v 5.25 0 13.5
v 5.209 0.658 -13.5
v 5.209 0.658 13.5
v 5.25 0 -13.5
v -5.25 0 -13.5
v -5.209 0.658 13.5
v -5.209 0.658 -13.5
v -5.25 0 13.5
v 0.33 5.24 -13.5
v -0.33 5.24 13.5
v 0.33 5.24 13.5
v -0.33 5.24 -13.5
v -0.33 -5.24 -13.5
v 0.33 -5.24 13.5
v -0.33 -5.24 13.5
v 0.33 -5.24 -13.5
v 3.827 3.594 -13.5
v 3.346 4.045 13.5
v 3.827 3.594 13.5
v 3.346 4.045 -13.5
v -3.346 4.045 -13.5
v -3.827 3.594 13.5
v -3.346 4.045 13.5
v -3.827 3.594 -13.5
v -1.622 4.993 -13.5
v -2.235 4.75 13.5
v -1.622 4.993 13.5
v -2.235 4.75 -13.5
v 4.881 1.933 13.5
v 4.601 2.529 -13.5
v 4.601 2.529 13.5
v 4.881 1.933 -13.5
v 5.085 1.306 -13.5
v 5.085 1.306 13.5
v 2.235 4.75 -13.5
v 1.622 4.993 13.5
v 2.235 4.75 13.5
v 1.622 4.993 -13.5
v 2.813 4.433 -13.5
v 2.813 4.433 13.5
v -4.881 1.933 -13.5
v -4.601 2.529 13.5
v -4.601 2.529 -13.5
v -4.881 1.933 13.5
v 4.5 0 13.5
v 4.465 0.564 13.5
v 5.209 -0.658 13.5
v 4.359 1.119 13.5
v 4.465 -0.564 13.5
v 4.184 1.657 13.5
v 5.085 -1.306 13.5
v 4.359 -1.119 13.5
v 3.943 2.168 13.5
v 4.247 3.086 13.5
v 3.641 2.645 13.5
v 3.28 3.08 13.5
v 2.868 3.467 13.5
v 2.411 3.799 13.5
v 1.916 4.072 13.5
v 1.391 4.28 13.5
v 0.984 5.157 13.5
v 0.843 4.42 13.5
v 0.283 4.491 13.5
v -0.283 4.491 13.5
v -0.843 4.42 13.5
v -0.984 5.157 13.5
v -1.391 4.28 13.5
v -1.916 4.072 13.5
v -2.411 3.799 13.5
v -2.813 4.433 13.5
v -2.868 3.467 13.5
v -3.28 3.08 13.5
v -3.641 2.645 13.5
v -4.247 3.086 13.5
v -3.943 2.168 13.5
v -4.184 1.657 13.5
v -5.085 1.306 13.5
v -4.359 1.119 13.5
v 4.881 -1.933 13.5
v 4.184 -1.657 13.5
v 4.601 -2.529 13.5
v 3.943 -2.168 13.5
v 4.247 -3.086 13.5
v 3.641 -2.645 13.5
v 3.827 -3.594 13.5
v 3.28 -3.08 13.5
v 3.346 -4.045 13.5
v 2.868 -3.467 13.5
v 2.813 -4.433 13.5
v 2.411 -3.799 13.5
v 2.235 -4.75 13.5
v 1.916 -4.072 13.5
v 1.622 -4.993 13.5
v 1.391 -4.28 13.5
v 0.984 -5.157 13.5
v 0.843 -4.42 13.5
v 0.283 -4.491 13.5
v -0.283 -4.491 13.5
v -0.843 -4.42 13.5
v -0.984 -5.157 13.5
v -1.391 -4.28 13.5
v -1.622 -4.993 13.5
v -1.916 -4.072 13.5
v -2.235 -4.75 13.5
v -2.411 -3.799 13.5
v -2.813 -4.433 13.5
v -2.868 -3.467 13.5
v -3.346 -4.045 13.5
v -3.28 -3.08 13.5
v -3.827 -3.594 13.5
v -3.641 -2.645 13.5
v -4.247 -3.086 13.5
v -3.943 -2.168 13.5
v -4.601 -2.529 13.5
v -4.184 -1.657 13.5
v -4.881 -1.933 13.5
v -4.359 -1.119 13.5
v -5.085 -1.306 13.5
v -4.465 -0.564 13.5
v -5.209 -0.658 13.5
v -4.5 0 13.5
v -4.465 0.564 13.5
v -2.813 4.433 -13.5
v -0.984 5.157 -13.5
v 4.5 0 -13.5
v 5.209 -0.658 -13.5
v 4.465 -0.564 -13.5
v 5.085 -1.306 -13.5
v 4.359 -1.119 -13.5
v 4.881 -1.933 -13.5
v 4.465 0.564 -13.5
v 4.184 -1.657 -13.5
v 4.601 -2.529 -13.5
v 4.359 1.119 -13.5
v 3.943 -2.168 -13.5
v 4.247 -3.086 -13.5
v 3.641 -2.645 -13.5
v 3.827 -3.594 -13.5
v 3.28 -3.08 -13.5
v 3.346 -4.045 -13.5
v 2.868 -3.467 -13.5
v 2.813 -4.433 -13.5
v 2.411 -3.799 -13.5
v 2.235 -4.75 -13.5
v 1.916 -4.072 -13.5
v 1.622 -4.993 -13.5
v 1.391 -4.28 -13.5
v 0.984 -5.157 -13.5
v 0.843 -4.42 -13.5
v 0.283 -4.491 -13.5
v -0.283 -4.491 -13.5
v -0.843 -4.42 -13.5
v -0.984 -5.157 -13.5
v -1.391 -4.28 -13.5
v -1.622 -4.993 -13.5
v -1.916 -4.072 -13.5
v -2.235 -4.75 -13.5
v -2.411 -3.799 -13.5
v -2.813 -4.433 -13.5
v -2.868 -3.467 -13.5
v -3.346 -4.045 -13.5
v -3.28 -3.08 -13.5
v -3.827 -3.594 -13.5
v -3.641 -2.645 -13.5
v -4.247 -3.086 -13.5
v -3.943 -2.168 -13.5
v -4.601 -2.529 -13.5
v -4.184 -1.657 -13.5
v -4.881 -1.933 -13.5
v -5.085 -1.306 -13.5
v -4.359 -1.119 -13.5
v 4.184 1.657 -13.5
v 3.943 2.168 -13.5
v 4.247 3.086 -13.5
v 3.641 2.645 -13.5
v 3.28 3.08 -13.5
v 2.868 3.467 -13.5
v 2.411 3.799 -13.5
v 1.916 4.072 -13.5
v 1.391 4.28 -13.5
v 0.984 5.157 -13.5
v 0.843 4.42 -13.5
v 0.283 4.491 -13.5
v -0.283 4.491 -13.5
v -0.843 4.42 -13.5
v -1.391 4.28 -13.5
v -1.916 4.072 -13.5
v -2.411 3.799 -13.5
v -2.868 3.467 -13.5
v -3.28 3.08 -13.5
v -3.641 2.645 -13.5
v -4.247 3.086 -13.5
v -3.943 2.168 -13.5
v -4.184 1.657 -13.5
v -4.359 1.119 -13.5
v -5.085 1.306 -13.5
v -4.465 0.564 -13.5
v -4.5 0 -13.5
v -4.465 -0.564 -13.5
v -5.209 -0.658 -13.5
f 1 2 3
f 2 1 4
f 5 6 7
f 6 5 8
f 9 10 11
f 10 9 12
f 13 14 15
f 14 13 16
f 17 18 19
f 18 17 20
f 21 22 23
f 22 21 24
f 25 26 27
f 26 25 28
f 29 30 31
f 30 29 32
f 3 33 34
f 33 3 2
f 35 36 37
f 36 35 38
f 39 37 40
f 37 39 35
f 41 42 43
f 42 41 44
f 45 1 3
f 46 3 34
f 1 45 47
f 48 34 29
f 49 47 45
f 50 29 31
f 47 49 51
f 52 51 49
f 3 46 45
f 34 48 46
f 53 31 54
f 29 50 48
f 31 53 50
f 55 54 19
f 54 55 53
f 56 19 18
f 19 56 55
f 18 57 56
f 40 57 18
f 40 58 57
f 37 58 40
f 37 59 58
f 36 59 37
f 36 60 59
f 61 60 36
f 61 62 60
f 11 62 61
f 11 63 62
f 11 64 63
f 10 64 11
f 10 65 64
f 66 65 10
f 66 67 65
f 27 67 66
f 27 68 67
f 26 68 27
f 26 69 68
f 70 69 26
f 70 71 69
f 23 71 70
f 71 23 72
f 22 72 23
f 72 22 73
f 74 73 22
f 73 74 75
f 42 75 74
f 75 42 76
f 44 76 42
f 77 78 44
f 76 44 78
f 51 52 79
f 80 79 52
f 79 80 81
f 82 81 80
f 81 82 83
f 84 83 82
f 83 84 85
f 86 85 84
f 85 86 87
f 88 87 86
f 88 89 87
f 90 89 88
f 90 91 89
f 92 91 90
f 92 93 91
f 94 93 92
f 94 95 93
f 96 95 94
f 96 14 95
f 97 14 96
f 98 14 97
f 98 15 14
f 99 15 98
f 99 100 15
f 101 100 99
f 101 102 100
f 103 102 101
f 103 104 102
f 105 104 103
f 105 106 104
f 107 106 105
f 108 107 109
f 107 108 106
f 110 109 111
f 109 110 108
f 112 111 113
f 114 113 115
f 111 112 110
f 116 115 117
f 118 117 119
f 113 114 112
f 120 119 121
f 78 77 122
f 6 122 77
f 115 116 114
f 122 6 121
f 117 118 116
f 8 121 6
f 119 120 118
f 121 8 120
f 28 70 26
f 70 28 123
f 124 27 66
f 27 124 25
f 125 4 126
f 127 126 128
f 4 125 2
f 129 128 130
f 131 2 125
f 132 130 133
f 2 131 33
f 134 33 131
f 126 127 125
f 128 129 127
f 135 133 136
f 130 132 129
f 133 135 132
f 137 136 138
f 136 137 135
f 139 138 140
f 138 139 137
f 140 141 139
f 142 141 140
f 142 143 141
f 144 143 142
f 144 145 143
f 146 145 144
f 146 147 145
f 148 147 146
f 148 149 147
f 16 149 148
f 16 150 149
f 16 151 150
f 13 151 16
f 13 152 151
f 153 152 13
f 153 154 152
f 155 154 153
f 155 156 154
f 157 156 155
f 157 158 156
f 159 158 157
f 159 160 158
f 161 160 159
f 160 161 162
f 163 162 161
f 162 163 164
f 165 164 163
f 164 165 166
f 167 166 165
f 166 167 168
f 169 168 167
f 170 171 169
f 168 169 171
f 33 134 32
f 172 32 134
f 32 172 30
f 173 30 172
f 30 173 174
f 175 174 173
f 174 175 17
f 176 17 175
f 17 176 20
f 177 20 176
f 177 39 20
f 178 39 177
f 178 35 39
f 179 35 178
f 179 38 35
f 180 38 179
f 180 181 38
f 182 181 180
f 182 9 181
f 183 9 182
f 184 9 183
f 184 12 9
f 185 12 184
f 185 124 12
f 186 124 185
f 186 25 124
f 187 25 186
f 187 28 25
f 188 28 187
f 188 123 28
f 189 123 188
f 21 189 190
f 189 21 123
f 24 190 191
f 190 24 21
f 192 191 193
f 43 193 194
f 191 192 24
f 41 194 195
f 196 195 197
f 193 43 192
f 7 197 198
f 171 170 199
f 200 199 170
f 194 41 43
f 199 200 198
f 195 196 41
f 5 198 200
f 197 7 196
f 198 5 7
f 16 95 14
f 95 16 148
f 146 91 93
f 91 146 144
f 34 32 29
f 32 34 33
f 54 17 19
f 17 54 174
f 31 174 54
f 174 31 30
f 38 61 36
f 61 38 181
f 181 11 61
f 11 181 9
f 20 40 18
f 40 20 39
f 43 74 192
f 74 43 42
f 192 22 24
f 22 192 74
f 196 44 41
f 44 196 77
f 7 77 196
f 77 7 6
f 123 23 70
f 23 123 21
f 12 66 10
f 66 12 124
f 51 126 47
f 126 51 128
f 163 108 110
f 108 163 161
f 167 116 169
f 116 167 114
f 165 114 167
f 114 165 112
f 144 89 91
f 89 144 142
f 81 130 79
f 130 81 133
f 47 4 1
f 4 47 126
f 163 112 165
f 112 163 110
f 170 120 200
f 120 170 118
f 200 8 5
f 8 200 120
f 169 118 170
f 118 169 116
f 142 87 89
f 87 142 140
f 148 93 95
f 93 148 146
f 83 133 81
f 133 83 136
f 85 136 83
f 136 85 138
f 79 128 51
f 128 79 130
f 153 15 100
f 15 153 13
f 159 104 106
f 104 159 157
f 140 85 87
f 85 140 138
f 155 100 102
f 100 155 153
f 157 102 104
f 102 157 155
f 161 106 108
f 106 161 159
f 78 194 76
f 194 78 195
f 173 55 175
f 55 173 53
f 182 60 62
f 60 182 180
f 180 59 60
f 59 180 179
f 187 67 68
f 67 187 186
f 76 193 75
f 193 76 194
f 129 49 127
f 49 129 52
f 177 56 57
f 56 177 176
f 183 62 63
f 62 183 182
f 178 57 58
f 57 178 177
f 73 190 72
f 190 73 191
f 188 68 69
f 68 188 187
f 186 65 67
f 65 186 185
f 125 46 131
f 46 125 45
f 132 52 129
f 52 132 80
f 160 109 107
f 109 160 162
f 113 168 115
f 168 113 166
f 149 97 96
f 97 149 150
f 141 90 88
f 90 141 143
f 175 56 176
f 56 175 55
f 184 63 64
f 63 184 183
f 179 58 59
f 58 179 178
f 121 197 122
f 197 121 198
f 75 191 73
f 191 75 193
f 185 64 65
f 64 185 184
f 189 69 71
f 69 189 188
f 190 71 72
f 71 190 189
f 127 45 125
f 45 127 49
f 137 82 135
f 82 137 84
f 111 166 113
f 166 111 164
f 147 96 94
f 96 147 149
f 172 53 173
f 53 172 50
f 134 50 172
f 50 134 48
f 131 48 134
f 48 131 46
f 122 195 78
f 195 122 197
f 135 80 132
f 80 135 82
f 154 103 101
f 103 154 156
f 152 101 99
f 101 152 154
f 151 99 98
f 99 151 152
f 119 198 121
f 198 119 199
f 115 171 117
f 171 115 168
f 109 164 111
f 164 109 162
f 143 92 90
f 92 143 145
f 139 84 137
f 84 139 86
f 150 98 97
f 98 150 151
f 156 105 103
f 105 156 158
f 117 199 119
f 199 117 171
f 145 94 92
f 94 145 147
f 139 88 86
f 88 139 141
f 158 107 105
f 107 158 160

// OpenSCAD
$fn = 50;


difference() {
	union() {
		translate(v = [0, 0, -13.5000000000]) {
			cylinder(h = 27, r = 5.2500000000);
		}
	}
	union() {
		translate(v = [0, 0, -100.0000000000]) {
			cylinder(h = 200, r = 4.5000000000);
		}
	}
}
